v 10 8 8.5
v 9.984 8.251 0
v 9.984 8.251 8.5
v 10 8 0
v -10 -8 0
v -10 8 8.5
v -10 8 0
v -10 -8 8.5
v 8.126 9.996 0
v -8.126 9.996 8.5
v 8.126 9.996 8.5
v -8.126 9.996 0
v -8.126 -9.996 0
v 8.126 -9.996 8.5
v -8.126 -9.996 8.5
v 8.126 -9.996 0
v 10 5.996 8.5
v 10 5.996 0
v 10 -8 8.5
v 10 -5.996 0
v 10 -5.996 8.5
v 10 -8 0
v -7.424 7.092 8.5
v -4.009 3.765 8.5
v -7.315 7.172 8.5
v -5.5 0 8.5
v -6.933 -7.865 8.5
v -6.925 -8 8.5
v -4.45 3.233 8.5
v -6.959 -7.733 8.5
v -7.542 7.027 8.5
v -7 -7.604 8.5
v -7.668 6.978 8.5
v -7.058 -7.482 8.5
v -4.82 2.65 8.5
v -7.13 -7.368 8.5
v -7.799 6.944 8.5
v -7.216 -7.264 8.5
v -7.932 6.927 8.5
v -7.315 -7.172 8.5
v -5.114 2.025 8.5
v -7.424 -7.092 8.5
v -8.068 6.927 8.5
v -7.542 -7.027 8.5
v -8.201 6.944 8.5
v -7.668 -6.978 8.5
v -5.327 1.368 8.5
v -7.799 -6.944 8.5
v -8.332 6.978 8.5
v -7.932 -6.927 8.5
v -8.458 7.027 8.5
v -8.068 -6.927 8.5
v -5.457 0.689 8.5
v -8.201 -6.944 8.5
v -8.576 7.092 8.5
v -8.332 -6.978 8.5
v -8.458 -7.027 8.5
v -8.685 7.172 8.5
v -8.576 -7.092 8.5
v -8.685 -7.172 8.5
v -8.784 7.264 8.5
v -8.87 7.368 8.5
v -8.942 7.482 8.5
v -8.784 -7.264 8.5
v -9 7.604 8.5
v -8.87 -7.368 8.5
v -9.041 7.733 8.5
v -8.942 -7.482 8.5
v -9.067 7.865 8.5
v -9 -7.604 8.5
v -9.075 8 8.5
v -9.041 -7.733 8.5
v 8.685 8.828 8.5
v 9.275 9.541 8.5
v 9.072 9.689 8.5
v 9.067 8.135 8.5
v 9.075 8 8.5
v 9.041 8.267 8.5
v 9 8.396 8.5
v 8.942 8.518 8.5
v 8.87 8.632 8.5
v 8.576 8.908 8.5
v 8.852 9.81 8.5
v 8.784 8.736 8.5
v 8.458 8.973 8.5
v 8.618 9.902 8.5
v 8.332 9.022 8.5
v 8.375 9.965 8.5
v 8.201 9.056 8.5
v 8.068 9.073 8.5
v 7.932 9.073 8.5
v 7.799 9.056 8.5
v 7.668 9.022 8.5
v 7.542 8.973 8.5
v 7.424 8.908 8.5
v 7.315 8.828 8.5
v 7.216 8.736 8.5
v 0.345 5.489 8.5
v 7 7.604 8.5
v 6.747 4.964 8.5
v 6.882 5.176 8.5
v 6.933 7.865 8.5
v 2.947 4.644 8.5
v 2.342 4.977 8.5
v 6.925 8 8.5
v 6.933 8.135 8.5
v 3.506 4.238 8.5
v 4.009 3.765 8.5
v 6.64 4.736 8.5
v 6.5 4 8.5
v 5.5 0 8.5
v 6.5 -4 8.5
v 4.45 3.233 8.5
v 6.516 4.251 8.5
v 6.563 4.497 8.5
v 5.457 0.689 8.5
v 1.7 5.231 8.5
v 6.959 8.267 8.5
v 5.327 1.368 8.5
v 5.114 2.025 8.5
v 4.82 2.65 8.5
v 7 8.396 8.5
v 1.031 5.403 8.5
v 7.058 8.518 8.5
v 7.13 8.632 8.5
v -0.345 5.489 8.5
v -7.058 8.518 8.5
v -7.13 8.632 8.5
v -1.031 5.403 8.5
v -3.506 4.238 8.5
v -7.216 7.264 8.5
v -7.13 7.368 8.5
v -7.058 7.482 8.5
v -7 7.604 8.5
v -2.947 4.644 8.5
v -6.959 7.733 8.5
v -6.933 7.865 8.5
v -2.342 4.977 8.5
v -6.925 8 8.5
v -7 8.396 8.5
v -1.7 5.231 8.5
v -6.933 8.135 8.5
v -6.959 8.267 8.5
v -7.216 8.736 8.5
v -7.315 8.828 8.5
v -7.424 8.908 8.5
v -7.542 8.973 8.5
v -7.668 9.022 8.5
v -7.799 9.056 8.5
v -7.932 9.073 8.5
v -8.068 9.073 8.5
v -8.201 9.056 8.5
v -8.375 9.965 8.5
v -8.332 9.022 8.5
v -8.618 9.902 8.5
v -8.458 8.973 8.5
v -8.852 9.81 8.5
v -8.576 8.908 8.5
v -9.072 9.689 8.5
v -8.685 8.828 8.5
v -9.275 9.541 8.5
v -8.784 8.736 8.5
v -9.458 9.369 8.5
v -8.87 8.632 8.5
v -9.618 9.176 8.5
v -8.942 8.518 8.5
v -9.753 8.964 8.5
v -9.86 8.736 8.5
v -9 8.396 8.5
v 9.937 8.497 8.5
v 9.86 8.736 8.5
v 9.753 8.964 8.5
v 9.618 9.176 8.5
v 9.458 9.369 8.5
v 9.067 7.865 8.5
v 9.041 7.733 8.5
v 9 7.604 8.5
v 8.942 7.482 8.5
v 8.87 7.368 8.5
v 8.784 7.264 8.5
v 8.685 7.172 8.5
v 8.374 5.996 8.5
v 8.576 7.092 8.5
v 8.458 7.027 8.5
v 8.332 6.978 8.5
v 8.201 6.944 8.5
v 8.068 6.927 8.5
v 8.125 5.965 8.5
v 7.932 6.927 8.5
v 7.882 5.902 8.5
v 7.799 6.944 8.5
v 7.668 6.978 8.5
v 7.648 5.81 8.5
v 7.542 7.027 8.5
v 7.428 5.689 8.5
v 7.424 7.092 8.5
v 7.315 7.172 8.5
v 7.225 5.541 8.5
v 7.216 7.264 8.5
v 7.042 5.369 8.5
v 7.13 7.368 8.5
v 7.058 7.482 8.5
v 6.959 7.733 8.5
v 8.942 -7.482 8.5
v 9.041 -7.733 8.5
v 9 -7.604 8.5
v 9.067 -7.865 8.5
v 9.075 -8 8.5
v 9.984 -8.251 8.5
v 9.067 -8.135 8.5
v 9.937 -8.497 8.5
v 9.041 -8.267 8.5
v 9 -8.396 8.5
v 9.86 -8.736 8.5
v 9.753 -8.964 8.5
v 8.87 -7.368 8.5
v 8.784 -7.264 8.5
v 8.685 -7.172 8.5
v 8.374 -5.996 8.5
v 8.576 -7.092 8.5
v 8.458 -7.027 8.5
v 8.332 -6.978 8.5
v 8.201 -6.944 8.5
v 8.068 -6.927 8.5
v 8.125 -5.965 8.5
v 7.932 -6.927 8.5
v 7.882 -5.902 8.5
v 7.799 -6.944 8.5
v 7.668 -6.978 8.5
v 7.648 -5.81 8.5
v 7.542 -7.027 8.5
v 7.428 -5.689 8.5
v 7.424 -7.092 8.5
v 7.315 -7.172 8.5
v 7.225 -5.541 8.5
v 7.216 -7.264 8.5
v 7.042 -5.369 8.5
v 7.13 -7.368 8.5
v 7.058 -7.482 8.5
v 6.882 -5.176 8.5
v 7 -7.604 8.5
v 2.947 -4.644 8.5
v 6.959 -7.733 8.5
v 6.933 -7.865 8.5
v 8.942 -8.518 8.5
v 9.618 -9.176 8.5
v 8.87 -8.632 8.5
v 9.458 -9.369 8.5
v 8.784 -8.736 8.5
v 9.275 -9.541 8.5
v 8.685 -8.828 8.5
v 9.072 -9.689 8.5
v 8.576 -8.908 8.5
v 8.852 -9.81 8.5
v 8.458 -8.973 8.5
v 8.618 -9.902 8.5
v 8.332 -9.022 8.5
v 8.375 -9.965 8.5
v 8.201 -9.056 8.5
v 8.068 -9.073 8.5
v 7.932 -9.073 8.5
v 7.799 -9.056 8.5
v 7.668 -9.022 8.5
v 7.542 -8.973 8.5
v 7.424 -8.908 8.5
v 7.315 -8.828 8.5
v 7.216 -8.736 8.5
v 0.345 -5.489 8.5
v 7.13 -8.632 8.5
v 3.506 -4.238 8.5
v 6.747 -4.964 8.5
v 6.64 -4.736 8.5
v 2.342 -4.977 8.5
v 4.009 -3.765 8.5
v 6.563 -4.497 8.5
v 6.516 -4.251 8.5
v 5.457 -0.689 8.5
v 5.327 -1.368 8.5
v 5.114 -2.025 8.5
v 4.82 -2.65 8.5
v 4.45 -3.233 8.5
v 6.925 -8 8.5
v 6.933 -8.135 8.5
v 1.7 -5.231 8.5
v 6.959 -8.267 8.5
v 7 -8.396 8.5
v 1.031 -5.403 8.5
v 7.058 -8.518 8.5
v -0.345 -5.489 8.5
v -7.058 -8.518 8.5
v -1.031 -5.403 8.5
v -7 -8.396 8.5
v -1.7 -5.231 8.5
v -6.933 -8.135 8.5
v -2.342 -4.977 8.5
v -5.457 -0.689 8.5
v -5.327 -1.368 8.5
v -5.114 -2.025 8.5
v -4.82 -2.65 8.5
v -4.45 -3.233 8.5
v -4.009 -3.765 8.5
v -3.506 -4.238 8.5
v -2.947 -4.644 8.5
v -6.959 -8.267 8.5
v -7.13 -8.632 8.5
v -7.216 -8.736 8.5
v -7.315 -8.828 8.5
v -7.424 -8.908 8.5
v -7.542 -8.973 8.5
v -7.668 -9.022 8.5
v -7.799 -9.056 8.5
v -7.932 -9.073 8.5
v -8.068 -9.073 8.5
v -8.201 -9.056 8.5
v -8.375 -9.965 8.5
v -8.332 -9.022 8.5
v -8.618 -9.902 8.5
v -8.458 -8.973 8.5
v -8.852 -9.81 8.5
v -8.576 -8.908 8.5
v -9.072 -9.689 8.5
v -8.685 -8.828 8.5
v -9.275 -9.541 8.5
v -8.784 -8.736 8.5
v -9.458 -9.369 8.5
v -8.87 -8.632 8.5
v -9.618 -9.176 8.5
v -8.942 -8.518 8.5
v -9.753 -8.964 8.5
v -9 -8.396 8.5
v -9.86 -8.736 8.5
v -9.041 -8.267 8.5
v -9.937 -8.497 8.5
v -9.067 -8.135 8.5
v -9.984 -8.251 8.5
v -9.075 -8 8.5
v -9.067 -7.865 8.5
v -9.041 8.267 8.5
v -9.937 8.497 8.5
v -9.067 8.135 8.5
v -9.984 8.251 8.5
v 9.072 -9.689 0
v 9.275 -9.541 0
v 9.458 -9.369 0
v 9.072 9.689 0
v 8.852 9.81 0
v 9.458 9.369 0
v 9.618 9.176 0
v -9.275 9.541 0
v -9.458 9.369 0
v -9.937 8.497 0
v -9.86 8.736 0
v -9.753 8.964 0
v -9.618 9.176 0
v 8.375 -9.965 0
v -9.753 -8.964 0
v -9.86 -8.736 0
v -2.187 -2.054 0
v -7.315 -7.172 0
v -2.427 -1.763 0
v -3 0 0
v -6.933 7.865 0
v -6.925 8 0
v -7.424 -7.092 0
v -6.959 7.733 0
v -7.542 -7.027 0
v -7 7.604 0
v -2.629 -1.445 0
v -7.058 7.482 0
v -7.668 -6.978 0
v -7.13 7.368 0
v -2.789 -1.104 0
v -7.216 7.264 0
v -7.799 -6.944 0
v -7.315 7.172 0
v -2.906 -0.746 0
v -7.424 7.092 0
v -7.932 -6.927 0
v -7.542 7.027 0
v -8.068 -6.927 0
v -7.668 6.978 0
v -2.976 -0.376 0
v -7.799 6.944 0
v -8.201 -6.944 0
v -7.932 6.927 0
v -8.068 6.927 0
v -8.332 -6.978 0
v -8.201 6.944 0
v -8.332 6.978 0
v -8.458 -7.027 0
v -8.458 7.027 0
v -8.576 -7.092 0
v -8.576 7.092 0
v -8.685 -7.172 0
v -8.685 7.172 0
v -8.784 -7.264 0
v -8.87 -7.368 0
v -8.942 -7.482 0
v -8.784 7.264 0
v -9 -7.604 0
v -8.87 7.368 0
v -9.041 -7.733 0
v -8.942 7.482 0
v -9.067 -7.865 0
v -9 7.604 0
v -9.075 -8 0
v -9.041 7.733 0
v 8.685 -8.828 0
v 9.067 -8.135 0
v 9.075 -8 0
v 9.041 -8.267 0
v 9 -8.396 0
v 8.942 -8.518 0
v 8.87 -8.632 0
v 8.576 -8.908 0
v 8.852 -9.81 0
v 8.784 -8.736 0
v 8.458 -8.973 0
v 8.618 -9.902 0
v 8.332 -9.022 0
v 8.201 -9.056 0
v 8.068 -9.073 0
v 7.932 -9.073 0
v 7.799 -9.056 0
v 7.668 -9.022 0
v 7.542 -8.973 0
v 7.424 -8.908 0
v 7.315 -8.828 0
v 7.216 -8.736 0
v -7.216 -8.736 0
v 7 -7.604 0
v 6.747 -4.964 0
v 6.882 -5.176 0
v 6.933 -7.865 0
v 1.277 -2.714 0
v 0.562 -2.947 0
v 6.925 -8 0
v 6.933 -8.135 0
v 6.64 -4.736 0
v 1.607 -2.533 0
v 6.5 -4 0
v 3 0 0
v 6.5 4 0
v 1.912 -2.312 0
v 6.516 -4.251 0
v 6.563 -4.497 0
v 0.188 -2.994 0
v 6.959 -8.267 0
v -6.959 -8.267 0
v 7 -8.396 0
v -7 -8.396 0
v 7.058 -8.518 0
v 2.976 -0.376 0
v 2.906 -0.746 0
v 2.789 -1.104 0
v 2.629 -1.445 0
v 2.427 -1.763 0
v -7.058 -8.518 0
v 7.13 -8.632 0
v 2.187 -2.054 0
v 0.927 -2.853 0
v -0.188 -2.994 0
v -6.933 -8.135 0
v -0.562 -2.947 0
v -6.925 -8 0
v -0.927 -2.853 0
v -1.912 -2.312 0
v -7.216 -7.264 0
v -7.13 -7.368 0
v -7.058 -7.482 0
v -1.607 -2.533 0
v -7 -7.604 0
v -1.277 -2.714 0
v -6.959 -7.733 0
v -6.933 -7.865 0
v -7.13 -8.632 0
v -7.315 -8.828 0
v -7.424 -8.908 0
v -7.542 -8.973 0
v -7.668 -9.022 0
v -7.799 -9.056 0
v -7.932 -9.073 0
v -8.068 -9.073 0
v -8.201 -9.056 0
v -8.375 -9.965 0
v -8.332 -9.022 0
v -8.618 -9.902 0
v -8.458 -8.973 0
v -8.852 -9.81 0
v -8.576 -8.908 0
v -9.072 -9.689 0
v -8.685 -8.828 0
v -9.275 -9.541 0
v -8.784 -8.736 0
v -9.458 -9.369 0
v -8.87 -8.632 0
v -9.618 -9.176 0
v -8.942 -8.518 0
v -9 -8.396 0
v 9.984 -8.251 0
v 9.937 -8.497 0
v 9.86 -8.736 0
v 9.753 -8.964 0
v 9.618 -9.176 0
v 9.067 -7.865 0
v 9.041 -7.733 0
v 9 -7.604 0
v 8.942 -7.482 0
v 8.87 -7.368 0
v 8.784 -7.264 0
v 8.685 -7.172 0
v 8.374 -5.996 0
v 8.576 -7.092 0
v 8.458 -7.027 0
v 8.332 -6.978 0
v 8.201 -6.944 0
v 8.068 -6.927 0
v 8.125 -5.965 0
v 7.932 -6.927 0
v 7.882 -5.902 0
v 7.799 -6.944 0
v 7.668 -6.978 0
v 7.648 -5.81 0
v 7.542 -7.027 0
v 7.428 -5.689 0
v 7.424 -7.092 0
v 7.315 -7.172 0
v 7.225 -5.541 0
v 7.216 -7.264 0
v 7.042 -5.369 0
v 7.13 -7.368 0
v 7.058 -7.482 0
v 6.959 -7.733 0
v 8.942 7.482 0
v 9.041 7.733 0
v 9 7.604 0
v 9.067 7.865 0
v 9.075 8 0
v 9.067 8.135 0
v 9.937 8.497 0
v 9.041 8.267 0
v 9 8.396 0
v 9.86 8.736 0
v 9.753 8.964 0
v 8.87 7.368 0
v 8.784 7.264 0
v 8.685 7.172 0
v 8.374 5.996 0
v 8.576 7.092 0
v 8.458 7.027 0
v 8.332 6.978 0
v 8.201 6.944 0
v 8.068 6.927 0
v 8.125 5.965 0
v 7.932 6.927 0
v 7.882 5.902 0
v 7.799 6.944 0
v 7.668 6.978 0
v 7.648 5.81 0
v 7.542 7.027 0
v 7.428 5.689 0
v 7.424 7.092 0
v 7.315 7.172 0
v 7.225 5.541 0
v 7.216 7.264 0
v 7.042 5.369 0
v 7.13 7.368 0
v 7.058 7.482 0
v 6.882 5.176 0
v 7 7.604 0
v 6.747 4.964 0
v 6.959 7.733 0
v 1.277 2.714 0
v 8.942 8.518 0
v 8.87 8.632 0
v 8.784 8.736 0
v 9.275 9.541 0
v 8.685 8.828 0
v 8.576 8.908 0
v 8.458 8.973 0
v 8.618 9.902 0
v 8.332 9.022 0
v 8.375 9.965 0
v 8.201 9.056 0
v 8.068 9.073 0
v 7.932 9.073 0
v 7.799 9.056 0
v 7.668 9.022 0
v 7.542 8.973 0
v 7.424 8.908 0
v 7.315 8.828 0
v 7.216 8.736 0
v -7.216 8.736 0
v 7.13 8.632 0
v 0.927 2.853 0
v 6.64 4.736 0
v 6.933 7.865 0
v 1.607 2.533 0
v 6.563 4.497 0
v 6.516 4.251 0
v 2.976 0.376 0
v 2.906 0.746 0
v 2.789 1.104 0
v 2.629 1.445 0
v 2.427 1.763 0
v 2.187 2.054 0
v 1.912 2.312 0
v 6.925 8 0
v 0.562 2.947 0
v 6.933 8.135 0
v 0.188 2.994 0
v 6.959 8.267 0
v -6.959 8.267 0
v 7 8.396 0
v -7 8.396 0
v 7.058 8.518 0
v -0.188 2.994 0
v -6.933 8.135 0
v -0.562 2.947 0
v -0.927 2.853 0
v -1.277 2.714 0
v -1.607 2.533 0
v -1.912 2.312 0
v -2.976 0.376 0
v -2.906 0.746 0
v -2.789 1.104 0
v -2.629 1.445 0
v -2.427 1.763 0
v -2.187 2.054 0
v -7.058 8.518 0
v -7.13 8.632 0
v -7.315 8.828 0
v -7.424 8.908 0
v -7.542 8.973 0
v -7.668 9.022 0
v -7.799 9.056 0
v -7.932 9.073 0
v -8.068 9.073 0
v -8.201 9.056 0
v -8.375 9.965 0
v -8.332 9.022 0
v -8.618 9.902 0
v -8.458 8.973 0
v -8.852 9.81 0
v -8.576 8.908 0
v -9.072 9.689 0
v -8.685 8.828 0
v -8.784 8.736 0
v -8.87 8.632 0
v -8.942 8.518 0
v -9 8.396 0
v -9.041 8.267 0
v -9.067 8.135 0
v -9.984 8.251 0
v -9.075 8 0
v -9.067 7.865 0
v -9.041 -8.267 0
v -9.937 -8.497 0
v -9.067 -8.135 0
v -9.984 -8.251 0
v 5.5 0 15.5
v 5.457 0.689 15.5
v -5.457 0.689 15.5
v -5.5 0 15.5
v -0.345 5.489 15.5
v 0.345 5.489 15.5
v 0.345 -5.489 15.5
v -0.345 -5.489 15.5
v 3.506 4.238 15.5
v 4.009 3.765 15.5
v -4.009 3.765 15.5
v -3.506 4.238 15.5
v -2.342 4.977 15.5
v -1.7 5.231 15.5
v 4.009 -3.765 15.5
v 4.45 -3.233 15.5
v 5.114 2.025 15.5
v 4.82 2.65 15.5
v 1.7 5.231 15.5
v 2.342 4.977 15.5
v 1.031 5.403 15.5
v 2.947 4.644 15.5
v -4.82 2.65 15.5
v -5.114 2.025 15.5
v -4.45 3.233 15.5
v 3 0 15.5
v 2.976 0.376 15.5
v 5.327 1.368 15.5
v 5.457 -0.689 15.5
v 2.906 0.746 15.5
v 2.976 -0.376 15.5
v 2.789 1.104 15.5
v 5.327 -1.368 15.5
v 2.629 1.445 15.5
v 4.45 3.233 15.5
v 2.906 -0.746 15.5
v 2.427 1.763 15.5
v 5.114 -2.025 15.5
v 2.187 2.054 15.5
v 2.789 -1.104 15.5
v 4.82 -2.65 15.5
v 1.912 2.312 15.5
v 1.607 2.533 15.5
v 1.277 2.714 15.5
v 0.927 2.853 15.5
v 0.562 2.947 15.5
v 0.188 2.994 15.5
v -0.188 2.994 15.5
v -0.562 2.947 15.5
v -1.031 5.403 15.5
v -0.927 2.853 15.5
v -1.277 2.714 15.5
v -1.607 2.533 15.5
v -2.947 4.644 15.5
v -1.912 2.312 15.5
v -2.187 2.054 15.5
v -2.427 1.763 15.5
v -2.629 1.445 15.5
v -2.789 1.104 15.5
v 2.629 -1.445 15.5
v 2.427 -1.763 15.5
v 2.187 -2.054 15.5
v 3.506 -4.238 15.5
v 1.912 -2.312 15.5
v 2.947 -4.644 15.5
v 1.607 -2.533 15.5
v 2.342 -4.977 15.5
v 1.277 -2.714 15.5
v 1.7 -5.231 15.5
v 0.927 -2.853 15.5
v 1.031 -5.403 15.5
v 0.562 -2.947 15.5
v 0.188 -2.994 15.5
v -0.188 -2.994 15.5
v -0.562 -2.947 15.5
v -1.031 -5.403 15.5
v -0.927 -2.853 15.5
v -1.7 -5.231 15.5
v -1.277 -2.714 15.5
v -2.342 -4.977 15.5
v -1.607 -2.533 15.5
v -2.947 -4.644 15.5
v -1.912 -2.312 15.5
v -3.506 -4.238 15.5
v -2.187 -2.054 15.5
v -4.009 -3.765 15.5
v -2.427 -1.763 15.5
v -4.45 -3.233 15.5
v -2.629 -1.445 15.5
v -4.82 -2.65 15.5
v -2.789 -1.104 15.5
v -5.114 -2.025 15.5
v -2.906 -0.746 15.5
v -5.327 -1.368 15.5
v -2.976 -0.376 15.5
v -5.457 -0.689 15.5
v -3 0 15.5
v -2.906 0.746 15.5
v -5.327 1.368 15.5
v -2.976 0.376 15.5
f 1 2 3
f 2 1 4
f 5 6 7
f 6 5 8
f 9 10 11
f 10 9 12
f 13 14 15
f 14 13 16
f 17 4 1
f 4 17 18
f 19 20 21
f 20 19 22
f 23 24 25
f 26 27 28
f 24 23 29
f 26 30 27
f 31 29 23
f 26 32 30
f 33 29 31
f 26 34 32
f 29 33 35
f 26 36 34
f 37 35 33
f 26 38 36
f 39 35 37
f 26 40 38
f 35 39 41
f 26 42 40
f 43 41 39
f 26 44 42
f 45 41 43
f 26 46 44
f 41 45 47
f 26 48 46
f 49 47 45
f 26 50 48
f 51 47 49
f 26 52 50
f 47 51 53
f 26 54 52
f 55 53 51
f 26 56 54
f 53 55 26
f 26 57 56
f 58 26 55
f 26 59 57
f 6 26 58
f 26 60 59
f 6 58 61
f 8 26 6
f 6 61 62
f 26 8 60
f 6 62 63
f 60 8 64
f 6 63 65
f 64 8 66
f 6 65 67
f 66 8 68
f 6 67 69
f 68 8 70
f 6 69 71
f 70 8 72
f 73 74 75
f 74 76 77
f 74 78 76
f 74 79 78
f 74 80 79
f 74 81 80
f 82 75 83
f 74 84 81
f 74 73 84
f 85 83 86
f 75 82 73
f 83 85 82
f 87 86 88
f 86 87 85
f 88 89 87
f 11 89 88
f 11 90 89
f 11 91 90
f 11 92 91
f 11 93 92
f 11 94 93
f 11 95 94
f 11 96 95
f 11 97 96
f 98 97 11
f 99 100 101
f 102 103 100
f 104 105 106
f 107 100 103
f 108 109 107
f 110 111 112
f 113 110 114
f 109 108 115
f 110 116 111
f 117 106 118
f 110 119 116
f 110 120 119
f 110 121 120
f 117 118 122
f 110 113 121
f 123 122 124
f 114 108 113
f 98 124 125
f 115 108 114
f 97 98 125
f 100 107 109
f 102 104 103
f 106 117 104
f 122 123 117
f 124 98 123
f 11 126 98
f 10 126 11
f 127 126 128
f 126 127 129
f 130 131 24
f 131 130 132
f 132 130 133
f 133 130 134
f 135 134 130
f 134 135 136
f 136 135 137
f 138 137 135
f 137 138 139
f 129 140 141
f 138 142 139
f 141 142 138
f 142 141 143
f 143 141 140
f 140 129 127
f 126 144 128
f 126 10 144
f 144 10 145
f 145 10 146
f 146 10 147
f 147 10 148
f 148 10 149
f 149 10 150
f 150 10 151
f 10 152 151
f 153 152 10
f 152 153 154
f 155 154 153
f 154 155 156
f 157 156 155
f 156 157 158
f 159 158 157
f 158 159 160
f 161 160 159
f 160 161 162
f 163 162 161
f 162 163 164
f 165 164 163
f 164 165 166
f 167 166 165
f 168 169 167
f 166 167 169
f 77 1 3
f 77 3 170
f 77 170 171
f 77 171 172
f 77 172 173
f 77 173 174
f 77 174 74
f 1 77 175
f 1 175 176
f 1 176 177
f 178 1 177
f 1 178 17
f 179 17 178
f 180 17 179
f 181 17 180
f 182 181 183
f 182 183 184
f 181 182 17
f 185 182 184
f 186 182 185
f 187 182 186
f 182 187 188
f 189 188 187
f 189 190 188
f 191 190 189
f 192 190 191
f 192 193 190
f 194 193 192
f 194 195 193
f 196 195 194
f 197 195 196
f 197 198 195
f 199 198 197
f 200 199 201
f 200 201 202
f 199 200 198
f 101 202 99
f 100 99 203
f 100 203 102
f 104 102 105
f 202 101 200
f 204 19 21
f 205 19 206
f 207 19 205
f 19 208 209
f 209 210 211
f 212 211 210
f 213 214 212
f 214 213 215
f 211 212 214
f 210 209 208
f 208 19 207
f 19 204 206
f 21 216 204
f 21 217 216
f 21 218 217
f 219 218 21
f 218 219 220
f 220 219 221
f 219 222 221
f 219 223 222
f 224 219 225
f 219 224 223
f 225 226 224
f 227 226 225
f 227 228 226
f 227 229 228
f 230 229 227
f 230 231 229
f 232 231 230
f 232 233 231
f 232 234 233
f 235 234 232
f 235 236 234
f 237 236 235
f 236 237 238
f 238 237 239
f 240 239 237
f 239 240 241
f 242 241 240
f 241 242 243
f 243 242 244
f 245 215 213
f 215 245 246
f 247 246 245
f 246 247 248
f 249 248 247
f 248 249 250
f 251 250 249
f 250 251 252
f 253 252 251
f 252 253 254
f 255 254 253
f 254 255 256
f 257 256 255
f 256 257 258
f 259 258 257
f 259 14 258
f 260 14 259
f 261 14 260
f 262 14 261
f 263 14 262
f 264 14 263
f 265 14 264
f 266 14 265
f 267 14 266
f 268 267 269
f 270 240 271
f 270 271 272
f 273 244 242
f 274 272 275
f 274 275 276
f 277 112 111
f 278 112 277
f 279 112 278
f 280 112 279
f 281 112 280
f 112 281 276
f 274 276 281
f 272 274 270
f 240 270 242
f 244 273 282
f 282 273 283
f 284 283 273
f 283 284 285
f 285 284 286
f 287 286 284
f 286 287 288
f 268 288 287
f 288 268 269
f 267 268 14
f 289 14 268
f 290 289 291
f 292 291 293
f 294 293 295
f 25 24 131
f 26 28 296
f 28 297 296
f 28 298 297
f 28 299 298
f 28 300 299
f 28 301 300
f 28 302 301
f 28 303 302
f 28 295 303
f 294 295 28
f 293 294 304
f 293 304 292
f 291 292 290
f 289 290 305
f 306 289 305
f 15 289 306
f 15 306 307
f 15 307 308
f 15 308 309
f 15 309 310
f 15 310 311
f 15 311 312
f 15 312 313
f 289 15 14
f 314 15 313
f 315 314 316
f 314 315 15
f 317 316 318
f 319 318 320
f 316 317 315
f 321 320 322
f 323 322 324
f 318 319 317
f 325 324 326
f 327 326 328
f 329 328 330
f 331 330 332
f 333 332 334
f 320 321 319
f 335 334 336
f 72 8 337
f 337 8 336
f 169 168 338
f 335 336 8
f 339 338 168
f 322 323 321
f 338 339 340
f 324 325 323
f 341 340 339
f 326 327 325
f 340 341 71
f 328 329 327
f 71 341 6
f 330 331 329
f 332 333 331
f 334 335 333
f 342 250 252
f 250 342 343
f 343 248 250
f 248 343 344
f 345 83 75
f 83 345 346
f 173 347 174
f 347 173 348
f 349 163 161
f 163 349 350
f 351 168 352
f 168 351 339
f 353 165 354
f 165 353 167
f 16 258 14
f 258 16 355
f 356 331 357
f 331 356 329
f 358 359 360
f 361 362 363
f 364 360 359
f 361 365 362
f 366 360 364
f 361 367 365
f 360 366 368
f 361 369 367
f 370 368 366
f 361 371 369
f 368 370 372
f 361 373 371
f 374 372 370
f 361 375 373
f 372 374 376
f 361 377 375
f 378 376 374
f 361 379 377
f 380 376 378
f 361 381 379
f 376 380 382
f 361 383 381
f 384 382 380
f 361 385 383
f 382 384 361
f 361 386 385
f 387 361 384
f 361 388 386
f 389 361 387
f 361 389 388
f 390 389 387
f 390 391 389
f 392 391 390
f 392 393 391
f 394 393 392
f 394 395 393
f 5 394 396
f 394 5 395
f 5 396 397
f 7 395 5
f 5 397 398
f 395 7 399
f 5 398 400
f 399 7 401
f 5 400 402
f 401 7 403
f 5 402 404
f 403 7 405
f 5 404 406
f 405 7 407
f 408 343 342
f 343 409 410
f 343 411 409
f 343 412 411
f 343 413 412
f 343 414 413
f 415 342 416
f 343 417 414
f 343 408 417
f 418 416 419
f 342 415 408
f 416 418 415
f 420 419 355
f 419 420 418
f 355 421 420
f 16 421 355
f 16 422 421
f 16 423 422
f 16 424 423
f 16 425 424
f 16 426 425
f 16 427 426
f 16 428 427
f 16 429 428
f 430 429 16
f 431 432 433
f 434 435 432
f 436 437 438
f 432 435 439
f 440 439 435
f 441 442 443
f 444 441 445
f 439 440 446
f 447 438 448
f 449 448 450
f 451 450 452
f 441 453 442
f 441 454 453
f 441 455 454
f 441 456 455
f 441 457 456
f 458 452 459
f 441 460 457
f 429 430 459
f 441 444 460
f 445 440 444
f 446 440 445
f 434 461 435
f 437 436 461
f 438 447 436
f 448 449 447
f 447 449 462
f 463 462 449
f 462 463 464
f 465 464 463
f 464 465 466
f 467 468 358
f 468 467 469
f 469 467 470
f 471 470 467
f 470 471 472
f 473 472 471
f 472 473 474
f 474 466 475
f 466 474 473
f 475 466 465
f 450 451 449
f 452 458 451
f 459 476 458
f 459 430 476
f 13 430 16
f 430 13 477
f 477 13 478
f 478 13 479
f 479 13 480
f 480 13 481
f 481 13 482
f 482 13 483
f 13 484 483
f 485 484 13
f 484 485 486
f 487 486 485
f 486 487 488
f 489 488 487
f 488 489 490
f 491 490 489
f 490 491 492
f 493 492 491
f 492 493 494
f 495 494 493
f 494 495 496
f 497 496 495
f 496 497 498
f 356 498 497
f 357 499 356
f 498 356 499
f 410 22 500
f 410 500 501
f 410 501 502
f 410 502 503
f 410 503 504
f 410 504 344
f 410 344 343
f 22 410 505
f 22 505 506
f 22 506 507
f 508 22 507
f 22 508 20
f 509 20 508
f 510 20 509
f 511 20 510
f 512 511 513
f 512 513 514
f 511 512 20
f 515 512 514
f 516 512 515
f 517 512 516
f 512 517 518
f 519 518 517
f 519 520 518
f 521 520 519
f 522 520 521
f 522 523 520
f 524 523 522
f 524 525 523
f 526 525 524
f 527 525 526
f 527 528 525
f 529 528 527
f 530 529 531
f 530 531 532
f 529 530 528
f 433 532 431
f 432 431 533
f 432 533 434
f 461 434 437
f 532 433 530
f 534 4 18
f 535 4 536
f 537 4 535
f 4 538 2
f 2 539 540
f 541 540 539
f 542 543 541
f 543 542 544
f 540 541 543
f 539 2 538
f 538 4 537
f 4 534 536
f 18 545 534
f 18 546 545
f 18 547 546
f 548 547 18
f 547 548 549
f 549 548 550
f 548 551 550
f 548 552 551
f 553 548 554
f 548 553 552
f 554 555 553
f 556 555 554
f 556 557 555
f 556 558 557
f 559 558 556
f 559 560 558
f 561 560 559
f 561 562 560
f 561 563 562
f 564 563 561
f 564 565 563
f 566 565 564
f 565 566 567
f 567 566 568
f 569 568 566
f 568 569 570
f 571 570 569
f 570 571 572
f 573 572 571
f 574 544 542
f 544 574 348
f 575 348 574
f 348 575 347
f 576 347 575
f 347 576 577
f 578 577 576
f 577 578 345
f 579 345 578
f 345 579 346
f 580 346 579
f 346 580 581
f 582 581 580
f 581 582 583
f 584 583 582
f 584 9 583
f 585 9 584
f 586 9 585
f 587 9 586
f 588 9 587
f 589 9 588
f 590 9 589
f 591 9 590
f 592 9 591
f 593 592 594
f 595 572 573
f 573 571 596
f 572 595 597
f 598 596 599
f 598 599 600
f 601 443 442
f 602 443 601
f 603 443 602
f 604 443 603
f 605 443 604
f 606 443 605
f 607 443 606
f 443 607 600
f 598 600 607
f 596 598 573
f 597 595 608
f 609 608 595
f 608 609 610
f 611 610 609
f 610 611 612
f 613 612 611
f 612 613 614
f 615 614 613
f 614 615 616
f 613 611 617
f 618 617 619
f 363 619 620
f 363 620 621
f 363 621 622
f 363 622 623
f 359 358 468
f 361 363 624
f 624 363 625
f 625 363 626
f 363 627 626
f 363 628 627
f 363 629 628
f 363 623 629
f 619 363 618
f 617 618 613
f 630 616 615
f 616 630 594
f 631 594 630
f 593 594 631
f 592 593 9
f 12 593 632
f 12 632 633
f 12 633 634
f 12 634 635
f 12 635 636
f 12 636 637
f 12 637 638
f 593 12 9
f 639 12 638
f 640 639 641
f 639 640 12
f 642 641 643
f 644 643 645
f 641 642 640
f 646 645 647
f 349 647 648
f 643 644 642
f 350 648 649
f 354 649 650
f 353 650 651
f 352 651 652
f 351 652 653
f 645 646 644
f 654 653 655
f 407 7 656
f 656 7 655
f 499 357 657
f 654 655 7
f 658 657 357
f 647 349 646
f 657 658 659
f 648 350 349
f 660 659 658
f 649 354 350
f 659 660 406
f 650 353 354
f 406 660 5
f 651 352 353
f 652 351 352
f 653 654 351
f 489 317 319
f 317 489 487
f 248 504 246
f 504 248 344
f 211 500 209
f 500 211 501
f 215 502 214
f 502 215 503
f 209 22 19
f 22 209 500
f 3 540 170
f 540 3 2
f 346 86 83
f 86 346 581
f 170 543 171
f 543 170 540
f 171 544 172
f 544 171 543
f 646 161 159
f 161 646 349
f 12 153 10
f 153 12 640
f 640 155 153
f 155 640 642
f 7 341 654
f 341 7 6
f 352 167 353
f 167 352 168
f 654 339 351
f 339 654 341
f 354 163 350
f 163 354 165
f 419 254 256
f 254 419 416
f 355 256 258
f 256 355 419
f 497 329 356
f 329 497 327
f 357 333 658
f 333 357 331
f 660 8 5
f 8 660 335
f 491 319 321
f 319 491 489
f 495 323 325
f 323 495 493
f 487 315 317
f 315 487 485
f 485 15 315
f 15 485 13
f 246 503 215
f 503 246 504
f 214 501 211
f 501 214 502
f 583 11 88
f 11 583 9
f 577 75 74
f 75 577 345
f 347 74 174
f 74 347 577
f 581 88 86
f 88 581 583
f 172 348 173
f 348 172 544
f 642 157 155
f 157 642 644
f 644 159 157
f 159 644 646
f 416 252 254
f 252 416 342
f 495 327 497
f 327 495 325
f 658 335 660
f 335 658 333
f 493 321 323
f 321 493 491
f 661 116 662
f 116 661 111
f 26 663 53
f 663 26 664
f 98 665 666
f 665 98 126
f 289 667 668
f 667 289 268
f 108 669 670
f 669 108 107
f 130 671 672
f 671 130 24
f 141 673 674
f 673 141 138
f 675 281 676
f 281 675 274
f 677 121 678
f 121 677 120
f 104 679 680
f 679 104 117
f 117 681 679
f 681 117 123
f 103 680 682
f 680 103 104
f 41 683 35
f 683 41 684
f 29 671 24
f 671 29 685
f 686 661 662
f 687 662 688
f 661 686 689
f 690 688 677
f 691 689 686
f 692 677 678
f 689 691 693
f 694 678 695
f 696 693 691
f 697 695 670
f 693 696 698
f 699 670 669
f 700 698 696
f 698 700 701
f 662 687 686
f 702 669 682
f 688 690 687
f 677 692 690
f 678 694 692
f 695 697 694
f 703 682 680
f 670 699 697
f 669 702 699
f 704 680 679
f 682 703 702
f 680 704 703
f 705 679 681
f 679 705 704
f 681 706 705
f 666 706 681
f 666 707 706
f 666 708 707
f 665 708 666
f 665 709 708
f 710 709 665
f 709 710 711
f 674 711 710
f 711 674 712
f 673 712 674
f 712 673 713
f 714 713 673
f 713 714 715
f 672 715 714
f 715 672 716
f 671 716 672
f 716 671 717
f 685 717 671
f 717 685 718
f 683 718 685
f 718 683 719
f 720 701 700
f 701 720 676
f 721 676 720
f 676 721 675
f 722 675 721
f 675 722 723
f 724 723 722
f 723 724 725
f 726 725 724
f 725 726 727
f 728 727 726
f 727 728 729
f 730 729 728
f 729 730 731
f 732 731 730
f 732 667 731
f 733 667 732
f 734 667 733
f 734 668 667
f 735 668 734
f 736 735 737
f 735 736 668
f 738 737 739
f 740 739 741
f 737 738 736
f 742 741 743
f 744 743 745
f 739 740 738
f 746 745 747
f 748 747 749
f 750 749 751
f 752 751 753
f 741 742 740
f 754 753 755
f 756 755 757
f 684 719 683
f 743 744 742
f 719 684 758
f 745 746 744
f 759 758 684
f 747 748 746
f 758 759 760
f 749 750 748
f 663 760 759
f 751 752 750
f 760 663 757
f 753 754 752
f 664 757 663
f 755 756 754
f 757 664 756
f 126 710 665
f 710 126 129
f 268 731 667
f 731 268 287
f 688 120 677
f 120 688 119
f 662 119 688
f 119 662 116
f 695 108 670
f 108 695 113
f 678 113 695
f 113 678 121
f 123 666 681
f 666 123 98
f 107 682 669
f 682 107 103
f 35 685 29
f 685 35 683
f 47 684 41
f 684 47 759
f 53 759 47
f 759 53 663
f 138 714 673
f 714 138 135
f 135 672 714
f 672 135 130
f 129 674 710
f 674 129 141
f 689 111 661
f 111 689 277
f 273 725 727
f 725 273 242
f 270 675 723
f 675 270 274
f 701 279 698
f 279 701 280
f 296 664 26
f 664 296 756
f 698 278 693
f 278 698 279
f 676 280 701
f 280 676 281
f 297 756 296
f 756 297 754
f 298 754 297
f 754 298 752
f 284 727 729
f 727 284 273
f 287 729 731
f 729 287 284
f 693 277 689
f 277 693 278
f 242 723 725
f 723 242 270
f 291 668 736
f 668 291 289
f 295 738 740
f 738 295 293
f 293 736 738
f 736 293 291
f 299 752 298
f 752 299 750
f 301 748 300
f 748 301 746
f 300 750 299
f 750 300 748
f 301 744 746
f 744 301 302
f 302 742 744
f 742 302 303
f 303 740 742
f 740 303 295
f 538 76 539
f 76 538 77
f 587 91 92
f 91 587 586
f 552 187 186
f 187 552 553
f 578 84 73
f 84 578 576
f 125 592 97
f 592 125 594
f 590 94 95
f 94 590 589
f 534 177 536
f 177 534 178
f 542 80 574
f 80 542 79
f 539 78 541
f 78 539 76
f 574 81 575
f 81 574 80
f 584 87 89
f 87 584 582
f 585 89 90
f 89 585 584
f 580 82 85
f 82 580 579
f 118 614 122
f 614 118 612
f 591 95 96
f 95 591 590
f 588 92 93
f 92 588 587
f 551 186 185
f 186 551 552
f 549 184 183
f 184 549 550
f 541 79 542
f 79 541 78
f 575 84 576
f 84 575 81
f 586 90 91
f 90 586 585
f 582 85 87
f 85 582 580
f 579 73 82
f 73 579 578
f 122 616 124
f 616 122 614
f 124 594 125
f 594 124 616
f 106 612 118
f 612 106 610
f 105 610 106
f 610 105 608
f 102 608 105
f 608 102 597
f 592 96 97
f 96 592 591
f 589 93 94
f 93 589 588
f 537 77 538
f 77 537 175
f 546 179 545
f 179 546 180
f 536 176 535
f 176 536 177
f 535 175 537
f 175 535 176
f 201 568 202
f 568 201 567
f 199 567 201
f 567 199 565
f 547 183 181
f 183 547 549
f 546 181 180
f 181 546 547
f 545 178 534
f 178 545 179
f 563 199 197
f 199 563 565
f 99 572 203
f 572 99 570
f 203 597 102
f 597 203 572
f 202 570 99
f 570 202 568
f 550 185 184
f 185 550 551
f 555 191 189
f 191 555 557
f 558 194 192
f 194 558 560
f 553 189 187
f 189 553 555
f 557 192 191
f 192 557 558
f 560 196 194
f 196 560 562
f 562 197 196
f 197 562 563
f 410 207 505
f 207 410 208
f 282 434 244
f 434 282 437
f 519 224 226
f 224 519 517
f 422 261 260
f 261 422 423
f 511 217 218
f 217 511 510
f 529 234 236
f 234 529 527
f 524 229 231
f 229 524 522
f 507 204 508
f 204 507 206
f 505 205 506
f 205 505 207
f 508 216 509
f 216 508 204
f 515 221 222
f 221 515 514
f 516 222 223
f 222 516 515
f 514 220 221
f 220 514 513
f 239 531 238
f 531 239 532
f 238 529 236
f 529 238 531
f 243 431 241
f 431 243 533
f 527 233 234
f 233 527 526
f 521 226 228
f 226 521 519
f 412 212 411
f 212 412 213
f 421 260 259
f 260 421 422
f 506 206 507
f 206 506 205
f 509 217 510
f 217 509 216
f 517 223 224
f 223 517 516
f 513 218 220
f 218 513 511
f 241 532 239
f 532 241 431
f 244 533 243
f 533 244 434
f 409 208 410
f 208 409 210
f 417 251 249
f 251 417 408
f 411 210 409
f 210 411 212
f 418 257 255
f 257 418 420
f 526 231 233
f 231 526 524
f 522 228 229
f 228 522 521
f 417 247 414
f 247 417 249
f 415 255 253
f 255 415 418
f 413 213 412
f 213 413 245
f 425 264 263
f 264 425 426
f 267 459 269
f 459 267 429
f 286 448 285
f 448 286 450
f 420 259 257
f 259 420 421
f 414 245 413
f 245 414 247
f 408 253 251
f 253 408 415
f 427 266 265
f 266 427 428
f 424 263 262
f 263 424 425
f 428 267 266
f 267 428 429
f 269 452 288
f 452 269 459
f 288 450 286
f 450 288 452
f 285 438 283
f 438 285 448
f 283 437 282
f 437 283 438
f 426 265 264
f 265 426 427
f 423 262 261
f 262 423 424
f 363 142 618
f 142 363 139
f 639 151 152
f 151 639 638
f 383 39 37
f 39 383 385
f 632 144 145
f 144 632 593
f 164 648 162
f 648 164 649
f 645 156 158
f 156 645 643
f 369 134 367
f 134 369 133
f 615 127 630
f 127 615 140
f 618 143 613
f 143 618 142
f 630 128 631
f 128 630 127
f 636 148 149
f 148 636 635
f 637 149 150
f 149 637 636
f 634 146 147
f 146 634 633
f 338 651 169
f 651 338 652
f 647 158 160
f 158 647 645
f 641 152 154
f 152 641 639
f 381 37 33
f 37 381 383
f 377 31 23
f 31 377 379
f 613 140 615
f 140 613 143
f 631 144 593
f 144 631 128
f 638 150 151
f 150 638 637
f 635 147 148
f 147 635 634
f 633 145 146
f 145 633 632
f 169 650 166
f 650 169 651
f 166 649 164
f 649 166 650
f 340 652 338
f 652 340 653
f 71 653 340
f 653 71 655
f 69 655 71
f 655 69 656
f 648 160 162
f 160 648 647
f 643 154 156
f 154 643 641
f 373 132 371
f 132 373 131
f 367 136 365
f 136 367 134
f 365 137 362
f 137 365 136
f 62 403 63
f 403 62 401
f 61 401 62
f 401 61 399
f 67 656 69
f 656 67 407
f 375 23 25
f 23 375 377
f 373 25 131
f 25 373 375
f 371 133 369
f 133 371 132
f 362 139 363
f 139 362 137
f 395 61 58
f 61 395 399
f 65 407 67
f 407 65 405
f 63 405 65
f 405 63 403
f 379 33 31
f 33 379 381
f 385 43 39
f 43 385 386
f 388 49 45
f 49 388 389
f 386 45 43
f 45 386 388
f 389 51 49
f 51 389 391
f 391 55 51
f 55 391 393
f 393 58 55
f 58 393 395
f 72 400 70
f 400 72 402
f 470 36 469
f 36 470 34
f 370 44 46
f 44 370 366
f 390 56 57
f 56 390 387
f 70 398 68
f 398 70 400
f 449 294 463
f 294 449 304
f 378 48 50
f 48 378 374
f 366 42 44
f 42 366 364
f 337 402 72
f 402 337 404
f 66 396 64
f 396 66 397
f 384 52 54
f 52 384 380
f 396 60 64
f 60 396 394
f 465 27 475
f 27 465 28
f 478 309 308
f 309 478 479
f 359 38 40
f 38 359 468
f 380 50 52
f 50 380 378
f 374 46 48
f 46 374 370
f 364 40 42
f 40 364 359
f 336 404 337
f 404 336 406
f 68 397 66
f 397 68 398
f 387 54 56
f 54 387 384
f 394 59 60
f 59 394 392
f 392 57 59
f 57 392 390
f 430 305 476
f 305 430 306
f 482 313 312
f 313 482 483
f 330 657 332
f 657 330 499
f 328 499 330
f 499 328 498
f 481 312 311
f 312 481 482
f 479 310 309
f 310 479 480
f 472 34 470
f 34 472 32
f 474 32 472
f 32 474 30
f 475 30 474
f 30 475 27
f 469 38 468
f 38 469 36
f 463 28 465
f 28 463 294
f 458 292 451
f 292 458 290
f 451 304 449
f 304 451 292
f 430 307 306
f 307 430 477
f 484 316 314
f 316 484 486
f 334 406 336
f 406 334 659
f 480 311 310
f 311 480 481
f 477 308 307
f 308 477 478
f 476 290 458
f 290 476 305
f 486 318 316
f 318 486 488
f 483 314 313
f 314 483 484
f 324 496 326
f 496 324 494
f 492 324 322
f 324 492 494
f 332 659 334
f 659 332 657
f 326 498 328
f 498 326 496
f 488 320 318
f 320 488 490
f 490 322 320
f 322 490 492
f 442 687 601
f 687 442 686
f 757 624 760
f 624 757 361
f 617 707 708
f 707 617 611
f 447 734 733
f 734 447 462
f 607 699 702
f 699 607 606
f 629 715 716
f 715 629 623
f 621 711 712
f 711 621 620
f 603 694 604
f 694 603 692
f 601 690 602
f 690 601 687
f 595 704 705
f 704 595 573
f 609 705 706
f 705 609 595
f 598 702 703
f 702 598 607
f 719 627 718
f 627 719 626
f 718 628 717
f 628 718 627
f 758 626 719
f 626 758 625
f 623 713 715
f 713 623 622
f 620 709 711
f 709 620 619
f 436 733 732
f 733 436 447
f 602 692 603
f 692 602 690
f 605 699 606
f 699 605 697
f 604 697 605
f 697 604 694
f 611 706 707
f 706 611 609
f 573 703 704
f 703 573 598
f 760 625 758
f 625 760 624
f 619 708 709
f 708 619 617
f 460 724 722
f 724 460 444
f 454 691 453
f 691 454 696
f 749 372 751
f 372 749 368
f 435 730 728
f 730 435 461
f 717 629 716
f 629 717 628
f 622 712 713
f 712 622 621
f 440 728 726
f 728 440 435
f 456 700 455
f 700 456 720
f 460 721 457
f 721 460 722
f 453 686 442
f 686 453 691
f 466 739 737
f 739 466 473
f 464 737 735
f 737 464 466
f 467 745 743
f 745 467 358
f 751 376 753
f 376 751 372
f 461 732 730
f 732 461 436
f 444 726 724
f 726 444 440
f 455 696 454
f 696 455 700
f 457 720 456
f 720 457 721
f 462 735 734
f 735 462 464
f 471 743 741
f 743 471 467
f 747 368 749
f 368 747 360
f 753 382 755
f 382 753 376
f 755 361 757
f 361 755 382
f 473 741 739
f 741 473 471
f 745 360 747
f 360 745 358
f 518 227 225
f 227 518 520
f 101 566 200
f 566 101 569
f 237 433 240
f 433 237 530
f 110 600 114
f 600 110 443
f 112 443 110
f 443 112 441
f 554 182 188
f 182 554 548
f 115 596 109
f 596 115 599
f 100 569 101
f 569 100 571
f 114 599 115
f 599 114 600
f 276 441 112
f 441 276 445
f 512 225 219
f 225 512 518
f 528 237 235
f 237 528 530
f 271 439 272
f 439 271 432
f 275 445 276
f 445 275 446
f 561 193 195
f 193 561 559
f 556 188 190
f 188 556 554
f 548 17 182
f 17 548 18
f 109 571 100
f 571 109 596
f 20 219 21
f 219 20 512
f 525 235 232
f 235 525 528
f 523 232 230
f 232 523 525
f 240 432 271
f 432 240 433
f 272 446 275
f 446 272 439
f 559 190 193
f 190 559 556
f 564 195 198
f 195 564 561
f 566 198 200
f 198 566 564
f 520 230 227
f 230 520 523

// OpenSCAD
$fn=50;
$drill2=2.15;
$drill6=6;
$surround=11;
$size = 8;
$thickness=8.5;
$xtrathickness=$thickness+7;

difference() {
    union() {
        hull() {
            translate([$size,$size,0]) cylinder(r=2, h=$thickness);
            translate([$size,-$size,0]) cylinder(r=2, h=$thickness);
            translate([-$size,$size,0]) cylinder(r=2, h=$thickness);
            translate([-$size,-$size,0]) cylinder(r=2, h=$thickness);
        }
        translate([0,0,0]) cylinder(r=($surround)/2,h=$xtrathickness);
    }

    translate([8, 8, -1]) cylinder(r=$drill2/2,h=$thickness+2);
    translate([8, -8, -1]) cylinder(r=$drill2/2,h=$thickness+2);
    translate([-8, 8, -1]) cylinder(r=$drill2/2,h=$thickness+2);
    translate([-8, -8, -1]) cylinder(r=$drill2/2,h=$thickness+2);

    translate([0,0, -1]) cylinder(r=$drill6/2,h=$xtrathickness+2);

    hull() {
        translate([$size+2,$size-4,-1]) cylinder(r=2, h=$thickness+2);
        translate([$size+2,-$size+4,-1]) cylinder(r=2, h=$thickness+2);
        translate([$size+0.5,$size-4,-1]) cylinder(r=2, h=$thickness+2);
        translate([$size+0.5,-$size+4,-1]) cylinder(r=2, h=$thickness+2);
    }

}
